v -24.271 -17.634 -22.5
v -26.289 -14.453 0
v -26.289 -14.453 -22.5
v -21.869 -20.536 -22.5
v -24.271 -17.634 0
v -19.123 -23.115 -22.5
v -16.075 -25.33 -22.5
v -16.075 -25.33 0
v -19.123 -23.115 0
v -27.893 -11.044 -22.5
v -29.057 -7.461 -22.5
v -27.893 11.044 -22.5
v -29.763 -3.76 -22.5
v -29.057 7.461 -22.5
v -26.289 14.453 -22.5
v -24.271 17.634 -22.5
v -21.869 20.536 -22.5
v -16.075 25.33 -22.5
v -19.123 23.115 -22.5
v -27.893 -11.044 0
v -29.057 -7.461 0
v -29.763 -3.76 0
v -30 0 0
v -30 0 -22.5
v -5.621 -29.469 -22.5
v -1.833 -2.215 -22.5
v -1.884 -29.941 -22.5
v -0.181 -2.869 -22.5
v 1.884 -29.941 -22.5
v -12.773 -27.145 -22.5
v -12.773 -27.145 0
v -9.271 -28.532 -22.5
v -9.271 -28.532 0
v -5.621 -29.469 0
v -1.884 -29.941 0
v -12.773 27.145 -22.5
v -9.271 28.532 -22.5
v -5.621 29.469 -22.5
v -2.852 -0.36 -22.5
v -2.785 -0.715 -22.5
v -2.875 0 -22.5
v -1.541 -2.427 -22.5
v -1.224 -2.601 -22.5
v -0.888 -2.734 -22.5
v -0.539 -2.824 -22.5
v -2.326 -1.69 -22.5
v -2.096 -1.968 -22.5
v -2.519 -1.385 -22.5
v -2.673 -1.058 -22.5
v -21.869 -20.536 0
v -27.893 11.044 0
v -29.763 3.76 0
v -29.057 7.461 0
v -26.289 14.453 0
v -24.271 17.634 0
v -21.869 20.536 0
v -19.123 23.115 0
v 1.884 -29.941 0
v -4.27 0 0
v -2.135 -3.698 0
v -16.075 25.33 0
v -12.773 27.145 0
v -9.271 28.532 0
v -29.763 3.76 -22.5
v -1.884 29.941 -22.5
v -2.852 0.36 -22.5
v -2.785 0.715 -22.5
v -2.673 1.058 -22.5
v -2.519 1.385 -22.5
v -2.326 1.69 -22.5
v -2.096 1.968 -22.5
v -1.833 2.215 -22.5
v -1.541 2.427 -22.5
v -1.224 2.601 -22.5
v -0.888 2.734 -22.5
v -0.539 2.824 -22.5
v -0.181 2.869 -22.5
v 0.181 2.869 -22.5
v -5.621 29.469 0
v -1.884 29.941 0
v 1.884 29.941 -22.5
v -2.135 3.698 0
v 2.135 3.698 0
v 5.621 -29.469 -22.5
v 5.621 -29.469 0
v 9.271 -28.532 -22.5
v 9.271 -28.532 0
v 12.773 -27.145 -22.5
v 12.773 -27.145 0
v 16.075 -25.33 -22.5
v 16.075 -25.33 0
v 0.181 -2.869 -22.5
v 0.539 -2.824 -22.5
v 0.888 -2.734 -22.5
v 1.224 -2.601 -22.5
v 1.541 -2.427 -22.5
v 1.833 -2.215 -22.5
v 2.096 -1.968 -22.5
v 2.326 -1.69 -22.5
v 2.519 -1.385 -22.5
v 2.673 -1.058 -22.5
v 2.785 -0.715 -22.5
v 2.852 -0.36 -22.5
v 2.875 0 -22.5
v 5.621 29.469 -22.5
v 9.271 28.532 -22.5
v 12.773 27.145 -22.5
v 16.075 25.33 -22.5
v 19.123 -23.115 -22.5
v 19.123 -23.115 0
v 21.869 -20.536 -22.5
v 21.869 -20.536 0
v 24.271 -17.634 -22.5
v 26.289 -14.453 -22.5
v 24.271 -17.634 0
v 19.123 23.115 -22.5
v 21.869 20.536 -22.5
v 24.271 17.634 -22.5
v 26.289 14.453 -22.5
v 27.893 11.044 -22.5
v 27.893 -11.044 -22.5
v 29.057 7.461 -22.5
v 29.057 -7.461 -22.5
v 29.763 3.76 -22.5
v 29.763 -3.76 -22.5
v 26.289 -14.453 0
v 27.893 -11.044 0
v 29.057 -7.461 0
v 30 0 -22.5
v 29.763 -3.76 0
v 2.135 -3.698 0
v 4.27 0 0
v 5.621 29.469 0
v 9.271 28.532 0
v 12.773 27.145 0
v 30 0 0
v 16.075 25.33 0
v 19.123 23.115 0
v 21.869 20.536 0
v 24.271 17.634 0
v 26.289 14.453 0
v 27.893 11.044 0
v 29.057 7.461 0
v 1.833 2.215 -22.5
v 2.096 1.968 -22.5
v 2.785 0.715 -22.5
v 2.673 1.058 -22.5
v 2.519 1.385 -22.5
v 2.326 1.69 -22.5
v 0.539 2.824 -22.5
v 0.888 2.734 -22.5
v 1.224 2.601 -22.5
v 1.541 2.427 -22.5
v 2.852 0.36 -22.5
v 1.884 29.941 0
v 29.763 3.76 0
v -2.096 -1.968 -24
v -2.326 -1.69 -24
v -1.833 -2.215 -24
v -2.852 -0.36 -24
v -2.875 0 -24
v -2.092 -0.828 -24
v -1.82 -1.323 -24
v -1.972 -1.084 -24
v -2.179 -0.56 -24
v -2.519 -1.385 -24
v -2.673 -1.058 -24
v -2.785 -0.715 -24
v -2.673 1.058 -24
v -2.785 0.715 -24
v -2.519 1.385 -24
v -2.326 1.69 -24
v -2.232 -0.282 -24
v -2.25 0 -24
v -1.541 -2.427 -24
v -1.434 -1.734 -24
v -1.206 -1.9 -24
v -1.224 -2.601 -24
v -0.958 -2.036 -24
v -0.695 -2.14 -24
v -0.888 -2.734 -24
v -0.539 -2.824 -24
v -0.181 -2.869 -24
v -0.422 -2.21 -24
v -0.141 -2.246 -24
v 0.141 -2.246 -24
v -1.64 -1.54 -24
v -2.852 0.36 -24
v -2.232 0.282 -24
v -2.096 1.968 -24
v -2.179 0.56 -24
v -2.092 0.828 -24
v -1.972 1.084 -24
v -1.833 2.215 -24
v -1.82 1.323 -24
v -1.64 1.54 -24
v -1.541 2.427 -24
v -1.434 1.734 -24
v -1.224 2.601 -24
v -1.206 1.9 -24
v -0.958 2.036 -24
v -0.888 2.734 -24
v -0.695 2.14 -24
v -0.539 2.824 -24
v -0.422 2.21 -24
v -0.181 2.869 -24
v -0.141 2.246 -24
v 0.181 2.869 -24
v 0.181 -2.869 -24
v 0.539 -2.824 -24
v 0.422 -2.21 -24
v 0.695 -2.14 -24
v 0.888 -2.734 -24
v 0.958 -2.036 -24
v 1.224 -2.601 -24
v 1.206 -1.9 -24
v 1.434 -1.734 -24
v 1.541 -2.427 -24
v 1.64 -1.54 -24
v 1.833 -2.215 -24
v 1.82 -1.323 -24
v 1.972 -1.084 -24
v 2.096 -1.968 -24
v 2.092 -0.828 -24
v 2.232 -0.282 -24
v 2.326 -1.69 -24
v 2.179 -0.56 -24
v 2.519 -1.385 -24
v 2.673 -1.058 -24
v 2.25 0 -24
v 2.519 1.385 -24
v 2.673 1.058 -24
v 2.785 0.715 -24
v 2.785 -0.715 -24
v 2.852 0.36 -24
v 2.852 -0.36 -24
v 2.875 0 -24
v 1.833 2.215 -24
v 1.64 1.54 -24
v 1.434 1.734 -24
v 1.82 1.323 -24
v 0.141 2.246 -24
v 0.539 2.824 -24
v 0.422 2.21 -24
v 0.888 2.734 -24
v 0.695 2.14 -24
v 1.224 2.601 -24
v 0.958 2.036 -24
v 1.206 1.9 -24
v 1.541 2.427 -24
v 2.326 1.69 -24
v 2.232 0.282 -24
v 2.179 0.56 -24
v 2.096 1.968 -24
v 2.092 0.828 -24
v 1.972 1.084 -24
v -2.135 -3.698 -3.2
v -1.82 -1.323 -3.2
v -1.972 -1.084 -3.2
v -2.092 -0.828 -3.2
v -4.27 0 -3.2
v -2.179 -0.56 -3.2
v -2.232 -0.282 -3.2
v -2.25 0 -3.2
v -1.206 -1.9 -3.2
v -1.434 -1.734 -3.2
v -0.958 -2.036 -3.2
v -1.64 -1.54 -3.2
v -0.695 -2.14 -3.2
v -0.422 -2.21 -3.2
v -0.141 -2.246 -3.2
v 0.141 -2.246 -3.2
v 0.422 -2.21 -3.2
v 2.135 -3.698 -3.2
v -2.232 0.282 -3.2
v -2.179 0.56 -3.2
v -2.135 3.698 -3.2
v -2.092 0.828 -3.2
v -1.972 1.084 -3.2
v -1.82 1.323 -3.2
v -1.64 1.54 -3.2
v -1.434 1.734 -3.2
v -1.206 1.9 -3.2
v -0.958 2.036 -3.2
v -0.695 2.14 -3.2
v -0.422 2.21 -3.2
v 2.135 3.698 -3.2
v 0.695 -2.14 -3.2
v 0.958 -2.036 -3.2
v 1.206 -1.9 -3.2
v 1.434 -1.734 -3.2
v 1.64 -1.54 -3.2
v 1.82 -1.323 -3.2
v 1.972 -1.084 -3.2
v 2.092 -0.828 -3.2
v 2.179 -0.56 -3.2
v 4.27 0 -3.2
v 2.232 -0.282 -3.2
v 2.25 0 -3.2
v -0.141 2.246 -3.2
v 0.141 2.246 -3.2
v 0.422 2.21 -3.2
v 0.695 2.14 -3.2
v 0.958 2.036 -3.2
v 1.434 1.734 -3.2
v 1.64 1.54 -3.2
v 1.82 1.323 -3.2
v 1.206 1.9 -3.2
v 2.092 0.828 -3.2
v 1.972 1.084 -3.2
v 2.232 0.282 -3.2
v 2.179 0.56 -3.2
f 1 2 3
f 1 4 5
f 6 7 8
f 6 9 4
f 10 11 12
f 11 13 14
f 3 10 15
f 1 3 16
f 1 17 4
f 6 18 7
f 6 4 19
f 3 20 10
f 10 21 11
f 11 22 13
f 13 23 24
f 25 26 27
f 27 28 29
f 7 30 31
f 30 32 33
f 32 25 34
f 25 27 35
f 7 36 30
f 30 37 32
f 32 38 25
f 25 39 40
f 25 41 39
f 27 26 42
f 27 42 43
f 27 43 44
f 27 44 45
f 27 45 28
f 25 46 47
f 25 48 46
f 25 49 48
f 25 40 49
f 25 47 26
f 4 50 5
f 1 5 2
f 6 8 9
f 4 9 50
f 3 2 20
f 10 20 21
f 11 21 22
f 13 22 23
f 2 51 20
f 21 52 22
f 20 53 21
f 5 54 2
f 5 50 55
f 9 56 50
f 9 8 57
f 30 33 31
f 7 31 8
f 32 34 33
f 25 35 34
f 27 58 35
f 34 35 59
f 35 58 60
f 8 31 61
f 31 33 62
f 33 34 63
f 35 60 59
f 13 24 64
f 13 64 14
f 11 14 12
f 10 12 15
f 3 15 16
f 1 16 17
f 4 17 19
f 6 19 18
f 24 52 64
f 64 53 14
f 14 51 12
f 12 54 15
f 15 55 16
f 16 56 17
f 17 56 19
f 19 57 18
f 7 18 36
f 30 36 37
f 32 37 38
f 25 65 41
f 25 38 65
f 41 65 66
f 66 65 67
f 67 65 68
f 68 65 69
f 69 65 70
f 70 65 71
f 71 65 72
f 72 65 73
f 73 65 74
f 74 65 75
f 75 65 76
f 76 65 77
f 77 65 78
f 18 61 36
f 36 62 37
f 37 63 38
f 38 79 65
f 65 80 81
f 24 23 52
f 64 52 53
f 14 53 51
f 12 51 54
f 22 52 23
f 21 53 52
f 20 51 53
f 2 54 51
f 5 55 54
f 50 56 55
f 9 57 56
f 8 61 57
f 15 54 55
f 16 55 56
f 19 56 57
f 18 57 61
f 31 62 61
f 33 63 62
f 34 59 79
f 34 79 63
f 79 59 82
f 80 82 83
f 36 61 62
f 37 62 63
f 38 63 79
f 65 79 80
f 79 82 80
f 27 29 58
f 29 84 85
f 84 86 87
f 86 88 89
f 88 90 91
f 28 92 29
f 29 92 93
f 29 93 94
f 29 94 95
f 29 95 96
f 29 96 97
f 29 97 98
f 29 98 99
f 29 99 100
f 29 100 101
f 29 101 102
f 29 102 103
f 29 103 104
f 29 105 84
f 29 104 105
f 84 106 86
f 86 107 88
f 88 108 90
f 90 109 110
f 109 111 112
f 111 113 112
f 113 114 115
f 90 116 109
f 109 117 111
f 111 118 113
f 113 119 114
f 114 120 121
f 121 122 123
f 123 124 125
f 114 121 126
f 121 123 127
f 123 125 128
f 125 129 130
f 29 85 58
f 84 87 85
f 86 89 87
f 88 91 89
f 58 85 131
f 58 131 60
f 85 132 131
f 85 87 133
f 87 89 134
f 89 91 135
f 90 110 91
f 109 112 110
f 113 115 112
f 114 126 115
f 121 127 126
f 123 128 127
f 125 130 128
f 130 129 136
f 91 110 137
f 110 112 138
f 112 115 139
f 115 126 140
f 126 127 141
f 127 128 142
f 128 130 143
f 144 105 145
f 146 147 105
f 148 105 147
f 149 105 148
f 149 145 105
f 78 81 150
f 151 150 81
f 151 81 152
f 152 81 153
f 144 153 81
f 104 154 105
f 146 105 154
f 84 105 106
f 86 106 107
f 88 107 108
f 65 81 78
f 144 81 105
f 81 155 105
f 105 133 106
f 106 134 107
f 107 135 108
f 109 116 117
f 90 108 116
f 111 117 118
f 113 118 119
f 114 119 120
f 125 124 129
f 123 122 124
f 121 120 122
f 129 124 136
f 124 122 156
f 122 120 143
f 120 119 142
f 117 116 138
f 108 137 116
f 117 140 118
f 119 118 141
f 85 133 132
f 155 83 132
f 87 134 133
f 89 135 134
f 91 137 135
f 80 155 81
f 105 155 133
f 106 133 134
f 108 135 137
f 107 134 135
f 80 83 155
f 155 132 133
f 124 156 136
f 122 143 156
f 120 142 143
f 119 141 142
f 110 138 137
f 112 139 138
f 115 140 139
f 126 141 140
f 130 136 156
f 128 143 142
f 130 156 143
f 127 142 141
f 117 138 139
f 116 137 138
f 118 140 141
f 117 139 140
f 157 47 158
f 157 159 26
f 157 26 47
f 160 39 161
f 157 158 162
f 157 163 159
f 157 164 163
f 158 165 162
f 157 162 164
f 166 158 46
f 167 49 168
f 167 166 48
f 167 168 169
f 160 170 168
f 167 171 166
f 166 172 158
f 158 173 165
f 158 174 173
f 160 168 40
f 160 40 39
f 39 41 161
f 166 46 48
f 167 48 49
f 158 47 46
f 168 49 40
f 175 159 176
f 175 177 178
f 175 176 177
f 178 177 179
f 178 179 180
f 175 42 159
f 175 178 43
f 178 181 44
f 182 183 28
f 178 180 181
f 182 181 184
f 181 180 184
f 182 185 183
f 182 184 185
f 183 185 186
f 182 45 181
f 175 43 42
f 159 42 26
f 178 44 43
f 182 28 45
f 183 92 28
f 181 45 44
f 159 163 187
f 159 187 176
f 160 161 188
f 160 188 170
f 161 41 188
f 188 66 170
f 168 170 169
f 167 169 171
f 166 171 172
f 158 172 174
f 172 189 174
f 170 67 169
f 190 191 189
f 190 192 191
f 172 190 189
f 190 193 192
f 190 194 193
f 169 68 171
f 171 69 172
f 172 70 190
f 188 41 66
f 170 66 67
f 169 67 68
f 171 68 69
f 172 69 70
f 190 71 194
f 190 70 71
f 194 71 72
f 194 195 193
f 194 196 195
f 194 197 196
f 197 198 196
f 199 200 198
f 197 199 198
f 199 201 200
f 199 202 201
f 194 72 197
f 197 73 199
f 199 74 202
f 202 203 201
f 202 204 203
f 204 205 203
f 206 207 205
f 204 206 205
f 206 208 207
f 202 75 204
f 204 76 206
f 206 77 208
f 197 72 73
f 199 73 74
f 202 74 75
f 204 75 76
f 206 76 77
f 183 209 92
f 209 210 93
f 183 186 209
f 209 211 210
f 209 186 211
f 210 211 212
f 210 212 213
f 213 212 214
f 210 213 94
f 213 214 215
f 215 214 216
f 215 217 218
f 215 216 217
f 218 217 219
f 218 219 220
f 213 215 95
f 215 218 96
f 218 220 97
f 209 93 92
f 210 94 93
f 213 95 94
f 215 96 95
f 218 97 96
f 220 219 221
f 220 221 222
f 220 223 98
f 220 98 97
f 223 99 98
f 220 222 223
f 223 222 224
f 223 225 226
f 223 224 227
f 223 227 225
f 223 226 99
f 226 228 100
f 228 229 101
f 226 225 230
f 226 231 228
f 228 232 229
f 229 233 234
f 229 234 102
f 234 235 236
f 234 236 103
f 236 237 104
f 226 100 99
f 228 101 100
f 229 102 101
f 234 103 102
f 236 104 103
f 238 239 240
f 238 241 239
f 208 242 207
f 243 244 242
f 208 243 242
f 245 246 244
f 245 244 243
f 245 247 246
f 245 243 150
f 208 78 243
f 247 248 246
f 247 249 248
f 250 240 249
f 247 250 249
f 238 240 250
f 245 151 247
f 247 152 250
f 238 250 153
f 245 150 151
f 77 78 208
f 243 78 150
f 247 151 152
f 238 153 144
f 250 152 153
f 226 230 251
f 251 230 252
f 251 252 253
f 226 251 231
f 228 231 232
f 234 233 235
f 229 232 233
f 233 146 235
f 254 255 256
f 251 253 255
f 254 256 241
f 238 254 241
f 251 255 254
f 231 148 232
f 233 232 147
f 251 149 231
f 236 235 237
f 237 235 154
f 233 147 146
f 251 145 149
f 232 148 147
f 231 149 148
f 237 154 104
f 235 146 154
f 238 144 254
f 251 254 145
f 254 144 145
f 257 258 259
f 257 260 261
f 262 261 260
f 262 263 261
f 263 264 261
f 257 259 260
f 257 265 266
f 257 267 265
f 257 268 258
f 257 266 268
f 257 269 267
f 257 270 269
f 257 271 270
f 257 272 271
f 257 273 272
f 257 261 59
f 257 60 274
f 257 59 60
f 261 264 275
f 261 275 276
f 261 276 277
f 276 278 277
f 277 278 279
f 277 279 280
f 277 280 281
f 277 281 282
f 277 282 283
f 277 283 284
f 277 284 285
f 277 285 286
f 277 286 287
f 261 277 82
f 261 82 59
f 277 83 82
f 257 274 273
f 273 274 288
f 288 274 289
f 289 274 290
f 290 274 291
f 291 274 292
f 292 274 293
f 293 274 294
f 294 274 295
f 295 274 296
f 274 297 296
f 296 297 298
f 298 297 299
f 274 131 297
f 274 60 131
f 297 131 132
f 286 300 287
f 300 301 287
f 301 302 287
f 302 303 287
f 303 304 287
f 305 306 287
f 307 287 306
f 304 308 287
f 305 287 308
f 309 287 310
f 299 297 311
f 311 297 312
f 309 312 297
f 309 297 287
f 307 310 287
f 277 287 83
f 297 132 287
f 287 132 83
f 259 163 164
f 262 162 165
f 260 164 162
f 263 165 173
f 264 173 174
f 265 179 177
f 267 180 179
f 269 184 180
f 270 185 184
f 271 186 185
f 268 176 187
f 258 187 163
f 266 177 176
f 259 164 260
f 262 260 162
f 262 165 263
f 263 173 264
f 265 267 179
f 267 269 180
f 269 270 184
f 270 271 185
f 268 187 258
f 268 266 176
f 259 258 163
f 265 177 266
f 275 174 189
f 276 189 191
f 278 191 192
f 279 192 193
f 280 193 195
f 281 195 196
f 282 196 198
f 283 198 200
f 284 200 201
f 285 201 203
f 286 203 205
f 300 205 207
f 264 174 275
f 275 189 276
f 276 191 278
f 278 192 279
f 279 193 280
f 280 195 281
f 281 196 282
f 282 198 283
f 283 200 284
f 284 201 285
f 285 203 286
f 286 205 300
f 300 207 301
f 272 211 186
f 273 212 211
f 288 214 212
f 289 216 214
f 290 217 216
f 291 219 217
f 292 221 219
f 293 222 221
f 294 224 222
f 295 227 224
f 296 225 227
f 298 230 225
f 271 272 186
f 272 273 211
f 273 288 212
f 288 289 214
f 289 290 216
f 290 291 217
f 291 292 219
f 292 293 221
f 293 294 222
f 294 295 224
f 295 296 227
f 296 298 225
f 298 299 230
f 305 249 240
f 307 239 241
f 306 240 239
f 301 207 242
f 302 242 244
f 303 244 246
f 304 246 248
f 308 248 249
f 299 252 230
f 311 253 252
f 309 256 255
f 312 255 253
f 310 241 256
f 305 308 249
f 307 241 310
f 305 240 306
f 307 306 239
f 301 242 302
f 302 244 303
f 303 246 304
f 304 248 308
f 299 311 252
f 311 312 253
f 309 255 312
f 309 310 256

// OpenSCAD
$fn = 50;

difference() {
	union() {
		translate(v = [0, 0, -22.5]) {
			cylinder(h = 22.5, r = 30.0);
		}
		#translate(v = [0, 0, -24.0]) {
			cylinder(h = 24, r = 2.875);
		}
	}
	union() {
		translate(v = [0, 0, 0]) {
			rotate(a = [0, 0, 0]) {
				difference() {
					union() {
						translate(v = [0, 0, -3.2]) {
							linear_extrude(height = 3.2) {
								polygon(points = [[4.2698, 0.0], [2.1349000000000005, 3.697755269078796], [-2.134899999999999, 3.6977552690787965], [-4.2698, 5.228996902999369e-16], [-2.134900000000002, -3.6977552690787956], [2.1348999999999974, -3.697755269078798]]);
							}
						}
					}
					union();
				}
			}
		}
		#translate(v = [0, 0, -100.0]) {
			cylinder(h = 200, r = 2.25);
		}
	}
}
